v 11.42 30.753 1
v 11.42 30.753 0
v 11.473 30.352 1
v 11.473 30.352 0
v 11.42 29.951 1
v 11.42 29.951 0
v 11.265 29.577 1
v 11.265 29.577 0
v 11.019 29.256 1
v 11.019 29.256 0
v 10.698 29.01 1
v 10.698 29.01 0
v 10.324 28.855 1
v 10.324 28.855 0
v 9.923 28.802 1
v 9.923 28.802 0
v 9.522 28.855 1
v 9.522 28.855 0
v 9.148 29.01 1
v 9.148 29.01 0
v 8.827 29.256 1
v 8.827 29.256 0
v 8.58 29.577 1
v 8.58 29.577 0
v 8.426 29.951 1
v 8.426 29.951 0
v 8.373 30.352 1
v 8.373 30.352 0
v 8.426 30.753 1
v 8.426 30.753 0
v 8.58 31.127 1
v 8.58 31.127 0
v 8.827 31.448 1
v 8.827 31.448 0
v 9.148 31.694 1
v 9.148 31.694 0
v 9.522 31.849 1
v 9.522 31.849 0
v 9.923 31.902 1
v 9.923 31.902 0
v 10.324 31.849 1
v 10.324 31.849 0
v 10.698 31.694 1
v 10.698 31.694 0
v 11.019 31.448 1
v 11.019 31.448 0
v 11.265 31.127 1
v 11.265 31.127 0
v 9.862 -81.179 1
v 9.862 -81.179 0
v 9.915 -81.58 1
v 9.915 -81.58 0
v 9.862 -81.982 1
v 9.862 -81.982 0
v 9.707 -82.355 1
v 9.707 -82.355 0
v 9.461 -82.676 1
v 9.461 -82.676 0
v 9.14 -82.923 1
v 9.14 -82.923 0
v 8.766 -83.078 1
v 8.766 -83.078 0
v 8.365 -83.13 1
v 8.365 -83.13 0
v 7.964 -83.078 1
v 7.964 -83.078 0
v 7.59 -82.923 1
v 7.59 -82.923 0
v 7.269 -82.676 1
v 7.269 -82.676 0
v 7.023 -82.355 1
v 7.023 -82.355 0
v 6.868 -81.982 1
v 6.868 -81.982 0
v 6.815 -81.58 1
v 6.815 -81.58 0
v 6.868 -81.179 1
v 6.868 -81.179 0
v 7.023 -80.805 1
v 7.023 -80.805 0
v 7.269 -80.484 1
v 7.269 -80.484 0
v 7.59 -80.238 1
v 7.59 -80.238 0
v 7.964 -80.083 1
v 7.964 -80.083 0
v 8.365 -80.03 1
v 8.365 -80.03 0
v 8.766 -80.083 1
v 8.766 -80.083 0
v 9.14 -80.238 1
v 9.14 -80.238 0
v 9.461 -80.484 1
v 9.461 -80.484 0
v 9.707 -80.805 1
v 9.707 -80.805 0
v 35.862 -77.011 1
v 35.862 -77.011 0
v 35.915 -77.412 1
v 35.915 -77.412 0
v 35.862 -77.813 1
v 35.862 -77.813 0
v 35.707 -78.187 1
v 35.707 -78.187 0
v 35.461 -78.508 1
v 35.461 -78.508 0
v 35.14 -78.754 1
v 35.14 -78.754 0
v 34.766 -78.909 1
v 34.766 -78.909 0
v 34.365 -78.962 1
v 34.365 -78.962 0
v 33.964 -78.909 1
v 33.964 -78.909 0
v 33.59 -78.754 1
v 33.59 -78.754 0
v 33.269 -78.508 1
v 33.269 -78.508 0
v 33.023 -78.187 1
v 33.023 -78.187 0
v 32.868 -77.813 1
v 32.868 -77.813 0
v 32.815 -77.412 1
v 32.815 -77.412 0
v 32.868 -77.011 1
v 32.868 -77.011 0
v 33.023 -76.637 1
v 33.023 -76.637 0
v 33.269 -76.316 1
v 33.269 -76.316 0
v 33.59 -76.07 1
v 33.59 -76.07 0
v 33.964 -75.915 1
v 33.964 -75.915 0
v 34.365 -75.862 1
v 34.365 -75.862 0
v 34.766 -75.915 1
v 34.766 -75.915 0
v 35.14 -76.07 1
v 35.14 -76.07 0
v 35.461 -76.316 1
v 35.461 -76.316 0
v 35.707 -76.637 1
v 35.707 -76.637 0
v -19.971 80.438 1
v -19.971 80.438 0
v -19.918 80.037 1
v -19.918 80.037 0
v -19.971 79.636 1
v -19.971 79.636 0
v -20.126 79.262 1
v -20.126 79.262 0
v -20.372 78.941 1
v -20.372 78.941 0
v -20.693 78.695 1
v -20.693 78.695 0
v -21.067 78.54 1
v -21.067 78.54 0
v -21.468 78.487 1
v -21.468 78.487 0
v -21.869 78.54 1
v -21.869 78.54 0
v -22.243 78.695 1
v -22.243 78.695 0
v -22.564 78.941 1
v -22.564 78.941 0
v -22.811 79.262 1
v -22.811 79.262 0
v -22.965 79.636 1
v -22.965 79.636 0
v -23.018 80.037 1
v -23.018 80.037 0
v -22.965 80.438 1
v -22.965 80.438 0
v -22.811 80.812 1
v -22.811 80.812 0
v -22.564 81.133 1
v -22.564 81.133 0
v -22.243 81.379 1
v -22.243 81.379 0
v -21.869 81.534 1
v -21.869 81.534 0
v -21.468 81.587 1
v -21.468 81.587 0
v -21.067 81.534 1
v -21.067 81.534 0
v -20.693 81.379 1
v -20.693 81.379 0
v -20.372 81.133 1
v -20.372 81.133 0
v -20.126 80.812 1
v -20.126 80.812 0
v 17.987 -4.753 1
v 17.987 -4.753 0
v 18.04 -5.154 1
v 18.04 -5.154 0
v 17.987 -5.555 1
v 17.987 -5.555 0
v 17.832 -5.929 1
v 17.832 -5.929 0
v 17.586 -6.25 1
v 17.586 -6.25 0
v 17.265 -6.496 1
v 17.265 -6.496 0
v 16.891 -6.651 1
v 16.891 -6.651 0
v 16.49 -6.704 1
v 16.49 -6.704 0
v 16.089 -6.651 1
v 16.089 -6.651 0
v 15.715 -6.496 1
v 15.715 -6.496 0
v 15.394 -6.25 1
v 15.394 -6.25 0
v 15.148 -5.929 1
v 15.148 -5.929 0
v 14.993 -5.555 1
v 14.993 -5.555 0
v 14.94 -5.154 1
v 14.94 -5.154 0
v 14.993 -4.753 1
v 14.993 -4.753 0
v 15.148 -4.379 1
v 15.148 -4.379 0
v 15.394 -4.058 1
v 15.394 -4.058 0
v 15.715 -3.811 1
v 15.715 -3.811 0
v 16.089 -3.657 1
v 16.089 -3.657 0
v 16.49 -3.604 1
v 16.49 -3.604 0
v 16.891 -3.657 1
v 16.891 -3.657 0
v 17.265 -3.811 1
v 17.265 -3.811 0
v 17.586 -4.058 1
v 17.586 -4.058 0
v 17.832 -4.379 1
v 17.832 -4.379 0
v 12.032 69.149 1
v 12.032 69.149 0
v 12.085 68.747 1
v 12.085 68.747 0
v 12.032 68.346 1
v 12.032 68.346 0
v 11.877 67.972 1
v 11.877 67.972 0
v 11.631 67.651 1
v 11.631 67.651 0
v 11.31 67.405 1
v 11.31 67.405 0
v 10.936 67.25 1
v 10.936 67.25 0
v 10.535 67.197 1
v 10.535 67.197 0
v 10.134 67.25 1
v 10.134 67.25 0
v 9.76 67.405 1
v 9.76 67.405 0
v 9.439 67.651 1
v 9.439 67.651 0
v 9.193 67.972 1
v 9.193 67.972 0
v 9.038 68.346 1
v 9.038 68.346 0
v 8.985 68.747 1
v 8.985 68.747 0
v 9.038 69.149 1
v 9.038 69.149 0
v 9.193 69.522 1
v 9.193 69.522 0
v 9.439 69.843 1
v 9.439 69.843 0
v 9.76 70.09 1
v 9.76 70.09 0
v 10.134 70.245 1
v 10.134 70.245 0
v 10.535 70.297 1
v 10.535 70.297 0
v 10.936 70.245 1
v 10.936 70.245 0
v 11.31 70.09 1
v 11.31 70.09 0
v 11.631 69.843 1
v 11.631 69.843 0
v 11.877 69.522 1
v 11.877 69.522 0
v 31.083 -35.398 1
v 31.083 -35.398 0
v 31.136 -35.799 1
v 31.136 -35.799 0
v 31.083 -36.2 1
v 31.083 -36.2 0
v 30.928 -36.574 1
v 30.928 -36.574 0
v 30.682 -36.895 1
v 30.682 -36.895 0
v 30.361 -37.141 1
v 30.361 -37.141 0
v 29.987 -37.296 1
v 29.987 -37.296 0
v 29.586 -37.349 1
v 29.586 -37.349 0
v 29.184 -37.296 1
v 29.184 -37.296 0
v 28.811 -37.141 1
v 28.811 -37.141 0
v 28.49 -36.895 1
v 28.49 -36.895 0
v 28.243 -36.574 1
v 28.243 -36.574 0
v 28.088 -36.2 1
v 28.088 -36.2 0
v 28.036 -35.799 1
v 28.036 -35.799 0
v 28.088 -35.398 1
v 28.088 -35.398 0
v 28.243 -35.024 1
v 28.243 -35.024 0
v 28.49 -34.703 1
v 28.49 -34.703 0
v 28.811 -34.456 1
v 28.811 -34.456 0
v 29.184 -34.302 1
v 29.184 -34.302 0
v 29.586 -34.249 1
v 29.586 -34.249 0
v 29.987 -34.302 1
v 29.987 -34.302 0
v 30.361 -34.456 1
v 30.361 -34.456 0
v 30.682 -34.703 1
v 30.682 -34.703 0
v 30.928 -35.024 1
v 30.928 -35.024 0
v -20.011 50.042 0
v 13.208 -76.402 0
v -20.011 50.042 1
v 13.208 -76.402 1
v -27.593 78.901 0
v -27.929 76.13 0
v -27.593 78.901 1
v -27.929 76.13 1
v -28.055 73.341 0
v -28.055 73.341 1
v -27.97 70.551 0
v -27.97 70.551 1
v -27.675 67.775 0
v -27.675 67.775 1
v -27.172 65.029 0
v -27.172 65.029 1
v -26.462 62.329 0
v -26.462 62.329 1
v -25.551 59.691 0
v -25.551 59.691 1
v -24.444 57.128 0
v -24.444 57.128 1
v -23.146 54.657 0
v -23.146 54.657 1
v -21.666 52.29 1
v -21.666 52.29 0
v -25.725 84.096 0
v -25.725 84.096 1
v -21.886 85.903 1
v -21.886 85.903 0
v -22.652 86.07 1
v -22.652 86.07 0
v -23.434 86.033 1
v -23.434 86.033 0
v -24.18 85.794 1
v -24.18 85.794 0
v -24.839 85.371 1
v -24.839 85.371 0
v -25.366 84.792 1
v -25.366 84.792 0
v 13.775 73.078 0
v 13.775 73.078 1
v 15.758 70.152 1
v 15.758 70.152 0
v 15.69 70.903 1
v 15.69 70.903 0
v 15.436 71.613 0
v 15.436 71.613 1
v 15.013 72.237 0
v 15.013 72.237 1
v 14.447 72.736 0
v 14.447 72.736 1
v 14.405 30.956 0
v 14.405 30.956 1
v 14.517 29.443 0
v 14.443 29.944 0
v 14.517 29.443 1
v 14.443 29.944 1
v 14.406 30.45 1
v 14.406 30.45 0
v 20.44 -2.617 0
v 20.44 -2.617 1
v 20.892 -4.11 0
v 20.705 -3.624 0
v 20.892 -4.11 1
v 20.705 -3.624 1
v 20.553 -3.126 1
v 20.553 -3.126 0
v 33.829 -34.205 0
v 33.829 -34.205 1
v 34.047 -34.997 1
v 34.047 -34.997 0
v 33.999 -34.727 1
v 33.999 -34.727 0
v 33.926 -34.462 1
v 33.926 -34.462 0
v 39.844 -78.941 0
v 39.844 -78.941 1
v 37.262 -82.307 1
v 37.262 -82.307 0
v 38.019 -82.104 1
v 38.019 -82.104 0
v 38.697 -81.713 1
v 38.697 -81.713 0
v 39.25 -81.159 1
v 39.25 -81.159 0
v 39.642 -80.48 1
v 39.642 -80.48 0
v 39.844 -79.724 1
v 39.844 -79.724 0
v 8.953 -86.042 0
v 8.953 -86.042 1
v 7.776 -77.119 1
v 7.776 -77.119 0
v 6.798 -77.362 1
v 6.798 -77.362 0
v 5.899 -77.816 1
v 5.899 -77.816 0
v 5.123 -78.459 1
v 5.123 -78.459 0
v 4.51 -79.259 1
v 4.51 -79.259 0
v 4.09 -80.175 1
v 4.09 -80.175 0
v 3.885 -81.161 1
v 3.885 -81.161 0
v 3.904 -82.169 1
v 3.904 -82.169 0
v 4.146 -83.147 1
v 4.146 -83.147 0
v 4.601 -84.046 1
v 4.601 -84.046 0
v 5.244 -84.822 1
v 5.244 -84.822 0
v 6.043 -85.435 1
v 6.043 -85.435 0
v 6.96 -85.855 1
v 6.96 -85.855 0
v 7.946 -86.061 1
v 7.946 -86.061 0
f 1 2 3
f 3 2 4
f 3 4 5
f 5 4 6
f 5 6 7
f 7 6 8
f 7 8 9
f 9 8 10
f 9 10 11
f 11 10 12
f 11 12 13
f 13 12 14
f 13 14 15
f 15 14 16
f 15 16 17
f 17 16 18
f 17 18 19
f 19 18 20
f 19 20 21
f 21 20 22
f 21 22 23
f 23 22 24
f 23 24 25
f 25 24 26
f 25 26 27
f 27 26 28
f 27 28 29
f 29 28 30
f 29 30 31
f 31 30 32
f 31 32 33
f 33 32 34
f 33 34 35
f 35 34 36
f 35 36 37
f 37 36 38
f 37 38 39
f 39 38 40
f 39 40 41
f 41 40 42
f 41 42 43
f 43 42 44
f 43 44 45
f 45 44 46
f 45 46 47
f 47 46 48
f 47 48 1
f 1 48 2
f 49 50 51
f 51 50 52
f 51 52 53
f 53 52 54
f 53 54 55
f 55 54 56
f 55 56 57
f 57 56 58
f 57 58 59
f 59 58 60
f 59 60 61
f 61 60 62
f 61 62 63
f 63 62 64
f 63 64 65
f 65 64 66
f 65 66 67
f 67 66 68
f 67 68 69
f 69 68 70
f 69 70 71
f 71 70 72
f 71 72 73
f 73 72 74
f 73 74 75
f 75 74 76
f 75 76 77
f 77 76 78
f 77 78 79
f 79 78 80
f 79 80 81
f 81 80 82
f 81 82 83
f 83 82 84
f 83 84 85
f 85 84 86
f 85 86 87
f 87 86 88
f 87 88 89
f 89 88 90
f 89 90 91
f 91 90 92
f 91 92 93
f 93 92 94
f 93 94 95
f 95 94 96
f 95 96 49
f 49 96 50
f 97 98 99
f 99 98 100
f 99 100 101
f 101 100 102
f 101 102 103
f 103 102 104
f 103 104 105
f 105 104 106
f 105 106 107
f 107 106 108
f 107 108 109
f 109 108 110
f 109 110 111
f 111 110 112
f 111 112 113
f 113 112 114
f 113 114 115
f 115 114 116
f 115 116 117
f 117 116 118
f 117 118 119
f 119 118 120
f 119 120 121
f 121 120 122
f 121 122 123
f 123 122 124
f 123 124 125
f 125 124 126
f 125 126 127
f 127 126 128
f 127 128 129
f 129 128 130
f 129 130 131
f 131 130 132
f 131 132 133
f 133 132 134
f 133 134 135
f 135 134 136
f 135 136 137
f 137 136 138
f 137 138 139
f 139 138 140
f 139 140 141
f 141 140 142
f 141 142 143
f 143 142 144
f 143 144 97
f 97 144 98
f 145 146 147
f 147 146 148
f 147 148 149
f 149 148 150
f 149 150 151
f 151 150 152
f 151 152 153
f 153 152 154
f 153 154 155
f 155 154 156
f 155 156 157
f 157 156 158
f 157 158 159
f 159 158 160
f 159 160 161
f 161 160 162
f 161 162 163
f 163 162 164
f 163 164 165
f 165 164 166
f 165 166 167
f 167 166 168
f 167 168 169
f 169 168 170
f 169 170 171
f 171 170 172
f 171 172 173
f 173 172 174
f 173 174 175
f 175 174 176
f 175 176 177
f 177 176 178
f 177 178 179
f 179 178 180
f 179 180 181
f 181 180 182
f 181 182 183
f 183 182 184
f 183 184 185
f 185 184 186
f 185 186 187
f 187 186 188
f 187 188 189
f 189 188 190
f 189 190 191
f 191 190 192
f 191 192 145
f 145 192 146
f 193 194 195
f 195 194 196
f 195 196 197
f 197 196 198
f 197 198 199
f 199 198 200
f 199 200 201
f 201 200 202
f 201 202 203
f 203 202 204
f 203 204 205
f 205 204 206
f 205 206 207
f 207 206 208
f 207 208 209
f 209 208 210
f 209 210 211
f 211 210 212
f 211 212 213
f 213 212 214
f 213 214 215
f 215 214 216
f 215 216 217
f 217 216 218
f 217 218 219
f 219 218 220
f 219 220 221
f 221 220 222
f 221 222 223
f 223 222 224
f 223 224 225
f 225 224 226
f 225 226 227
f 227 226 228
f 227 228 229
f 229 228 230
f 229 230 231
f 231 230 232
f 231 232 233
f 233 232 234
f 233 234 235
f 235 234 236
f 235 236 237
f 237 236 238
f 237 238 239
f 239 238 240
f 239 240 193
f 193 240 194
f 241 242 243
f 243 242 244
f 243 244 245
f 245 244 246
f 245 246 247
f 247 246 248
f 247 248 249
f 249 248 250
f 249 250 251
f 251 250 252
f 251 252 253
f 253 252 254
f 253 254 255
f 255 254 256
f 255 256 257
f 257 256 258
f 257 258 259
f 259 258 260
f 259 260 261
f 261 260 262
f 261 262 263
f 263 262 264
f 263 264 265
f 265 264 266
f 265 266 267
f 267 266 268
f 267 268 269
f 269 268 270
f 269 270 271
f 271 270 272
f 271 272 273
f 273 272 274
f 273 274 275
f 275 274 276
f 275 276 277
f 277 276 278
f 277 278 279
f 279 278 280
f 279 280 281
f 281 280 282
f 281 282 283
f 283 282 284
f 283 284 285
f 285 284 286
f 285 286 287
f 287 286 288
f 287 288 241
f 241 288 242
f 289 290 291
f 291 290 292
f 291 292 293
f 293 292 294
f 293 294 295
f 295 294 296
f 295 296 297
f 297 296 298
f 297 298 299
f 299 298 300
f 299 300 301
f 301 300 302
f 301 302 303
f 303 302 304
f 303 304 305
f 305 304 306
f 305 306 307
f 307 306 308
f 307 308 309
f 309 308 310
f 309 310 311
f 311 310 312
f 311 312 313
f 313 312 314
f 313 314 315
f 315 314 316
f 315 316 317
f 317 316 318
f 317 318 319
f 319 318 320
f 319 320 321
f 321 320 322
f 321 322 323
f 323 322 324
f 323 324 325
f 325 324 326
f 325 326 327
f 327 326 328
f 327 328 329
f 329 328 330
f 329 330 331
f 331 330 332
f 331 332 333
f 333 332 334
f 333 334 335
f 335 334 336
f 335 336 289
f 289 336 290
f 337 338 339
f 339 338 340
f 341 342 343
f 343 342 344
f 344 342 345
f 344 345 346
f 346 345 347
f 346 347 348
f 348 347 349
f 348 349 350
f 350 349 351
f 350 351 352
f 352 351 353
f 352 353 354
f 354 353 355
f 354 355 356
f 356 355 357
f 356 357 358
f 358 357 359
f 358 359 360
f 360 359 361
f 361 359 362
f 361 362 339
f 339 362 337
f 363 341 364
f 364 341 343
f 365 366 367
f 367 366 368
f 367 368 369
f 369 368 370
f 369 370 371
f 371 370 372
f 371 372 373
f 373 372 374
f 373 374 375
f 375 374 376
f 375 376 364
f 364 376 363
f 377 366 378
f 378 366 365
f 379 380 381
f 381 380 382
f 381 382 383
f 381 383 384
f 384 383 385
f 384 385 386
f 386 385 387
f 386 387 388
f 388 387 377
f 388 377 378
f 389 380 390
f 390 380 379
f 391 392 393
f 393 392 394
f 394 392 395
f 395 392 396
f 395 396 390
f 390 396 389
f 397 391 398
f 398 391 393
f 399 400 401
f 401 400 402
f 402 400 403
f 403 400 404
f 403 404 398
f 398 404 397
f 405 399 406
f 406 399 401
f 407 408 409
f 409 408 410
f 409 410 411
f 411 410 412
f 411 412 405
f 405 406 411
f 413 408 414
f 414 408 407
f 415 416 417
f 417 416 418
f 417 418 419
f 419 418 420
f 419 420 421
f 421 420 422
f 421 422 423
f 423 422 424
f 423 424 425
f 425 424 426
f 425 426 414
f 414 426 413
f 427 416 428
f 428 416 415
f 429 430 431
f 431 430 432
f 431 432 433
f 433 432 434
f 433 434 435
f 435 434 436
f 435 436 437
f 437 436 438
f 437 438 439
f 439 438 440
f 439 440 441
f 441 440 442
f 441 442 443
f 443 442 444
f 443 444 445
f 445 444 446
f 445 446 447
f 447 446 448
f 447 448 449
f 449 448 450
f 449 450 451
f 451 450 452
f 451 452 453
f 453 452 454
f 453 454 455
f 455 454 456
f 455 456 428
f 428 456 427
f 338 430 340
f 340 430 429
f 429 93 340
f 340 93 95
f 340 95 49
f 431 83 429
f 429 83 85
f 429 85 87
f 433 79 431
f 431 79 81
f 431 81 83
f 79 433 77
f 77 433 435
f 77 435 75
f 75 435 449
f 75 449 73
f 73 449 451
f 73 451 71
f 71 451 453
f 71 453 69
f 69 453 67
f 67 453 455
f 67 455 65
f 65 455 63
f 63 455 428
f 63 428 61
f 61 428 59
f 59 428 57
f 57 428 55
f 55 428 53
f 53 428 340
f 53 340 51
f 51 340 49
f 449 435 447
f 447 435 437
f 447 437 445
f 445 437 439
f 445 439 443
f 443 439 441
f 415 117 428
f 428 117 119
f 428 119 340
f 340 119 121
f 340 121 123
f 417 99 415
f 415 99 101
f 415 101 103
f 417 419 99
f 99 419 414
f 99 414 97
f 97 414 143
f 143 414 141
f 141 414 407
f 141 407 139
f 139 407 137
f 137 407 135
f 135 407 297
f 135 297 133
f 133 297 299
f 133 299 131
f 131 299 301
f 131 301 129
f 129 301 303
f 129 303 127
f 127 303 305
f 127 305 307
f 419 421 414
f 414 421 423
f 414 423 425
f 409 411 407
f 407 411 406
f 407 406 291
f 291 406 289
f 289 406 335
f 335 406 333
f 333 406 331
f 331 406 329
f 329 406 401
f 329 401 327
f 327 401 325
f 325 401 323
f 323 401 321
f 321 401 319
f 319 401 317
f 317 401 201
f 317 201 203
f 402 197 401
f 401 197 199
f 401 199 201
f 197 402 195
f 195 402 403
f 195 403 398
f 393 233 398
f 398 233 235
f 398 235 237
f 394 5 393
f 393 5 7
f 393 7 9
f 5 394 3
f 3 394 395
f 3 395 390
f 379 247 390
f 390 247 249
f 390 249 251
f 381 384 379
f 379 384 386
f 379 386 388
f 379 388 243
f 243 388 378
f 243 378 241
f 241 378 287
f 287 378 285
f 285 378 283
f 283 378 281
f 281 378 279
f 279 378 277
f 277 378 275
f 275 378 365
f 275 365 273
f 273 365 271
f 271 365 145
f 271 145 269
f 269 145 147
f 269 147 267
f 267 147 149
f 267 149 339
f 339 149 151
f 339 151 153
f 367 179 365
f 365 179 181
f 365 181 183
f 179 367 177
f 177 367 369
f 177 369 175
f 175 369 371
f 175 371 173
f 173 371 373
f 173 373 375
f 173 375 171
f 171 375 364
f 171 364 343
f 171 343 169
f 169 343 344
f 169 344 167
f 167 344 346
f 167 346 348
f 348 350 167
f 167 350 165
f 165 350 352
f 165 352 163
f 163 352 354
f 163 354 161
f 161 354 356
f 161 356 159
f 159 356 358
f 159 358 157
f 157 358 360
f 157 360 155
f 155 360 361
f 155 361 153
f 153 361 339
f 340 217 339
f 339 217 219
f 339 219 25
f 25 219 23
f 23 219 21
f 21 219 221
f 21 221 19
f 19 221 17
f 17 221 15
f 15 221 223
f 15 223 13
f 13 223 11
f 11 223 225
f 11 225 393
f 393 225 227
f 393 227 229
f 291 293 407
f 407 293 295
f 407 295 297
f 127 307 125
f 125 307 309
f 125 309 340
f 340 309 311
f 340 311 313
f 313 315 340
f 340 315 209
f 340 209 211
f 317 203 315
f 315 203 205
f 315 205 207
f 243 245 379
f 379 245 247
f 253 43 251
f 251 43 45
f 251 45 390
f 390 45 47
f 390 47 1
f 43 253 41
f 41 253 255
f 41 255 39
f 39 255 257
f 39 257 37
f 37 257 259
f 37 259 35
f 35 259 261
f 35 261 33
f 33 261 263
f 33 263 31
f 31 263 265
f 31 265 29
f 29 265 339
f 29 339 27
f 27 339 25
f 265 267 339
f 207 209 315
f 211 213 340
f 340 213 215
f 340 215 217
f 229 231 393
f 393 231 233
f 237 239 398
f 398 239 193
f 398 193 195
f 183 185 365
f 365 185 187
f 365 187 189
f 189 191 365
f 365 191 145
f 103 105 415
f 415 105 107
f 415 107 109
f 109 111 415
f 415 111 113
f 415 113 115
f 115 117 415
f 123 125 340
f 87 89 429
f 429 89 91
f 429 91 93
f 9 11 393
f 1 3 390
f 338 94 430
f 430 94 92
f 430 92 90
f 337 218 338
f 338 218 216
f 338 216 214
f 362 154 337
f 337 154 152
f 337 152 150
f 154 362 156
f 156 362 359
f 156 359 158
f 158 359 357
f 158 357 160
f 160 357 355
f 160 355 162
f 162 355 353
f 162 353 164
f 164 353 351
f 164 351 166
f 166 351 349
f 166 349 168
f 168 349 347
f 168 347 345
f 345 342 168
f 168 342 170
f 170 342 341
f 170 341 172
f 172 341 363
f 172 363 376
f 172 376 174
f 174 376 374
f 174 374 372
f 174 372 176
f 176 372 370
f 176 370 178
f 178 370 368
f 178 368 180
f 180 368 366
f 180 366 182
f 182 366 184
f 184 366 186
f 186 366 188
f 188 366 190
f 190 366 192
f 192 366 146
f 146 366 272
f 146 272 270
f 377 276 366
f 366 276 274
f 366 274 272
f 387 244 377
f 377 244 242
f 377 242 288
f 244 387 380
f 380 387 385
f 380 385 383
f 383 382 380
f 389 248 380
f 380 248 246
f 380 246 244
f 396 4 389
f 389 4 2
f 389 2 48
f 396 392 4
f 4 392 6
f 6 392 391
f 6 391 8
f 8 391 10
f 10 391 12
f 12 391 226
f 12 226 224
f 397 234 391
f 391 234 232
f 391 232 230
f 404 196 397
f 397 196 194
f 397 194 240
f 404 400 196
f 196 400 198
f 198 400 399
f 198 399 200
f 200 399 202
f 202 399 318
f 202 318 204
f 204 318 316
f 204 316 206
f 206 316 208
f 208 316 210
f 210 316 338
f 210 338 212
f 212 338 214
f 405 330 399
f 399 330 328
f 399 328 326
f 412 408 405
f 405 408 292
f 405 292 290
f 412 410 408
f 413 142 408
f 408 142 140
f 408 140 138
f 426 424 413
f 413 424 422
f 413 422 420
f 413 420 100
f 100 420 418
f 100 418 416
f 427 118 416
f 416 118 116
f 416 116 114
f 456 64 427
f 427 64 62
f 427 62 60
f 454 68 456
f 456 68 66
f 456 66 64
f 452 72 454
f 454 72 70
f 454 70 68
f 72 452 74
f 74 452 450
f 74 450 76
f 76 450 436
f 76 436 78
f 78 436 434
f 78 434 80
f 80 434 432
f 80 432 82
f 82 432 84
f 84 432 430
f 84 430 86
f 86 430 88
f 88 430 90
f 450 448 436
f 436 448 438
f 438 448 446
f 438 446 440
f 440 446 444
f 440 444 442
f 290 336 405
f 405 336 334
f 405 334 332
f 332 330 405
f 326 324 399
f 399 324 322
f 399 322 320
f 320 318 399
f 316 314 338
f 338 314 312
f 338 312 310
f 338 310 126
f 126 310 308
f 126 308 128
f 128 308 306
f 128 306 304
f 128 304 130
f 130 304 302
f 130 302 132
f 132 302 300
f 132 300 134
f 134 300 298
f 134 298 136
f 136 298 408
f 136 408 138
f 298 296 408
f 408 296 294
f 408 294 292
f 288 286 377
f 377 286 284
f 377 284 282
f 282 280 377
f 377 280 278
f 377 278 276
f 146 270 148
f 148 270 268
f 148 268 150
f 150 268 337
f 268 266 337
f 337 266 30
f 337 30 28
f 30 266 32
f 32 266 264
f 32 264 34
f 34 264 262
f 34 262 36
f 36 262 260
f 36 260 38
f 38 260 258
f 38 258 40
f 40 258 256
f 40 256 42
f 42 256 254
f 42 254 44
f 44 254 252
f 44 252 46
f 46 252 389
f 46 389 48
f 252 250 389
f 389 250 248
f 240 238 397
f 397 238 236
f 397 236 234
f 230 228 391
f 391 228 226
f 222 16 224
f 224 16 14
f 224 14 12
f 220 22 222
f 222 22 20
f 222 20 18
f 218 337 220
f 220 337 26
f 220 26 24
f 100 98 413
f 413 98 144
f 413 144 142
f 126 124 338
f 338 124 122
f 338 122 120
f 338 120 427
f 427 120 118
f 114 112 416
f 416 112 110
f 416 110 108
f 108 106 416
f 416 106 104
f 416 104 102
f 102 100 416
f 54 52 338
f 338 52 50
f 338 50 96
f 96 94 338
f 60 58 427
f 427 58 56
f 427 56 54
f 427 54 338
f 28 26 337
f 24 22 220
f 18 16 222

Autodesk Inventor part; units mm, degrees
ref_plane "YZ Plane" through (0, 0, 0) normal (1, 0, 0) x (0, 1, 0)
ref_plane "XZ Plane" through (0, 0, 0) normal (0, 1, 0) x (-1, 0, 0)
ref_plane "XY Plane" through (0, 0, 0) normal (0, 0, 1) x (1, 0, 0)
ref_plane "Work Plane1" through (0, 0, 0) normal (0, 0, 1) x (1, 0, 0)
sketch "Sketch1" plane through (0, 0, 0) normal (0, 0, 1) x (1, 0, 0)
  line L0 (12.6235, -7.6637) -> (25.0692, -36.6156) projected
  arc A0 (25.2873, -37.408) -> (25.0692, -36.6156) centre (22.3131, -37.8003) ccw projected
  line L1 (25.2873, -37.408) -> (29.8752, -72.1865) projected
  arc A1 (28.1539, -74.4309) -> (29.8752, -72.1865) centre (27.8924, -72.448) ccw projected
  line L2 (28.1539, -74.4309) -> (7.7764, -77.119) projected
  arc A2 (7.7764, -77.119) -> (8.9535, -86.0417) centre (8.365, -81.5803) ccw projected
  line L3 (8.9535, -86.0417) -> (37.2623, -82.3073) projected
  arc A3 (37.2623, -82.3073) -> (39.8442, -78.9407) centre (36.8699, -79.3331) ccw projected
  line L4 (39.8442, -78.9407) -> (34.0473, -34.997) projected
  arc A4 (34.0473, -34.997) -> (33.8292, -34.2046) centre (31.073, -35.3894) ccw projected
  line L5 (33.8292, -34.2046) -> (20.8924, -4.1103) projected
  arc A5 (20.4398, -2.6174) -> (20.8924, -4.1103) centre (27.3234, -1.3458) ccw projected
  line L6 (20.4398, -2.6174) -> (14.5173, 29.4432) projected
  arc A6 (14.405, 30.9564) -> (14.5173, 29.4432) centre (21.4008, 30.7148) ccw projected
  line L7 (14.405, 30.9564) -> (15.7585, 70.1518) projected
  arc A7 (15.7585, 70.1518) -> (13.7755, 73.0784) centre (12.7603, 70.2554) ccw projected
  line L8 (13.7755, 73.0784) -> (-21.8863, 85.9033) projected
  arc A8 (-21.8863, 85.9033) -> (-25.7246, 84.0956) centre (-22.9016, 83.0803) ccw projected
  line L9 (-25.7246, 84.0956) -> (-39.6044, 45.5005) projected
  arc A9 (-39.6044, 45.5005) -> (-31.1354, 42.4548) centre (-35.3699, 43.9777) ccw projected
  line L10 (-31.1354, 42.4548) -> (-28.9682, 48.481) projected
  arc A10 (-23.2109, 51.1927) -> (-28.9682, 48.481) centre (-24.7337, 46.9582) ccw projected
  line L11 (-23.2109, 51.1927) -> (2.9943, 41.7686) projected
  arc A11 (5.6382, 37.8666) -> (2.9943, 41.7686) centre (1.6406, 38.0046) ccw projected
  line L12 (5.6382, 37.8666) -> (5.4104, 31.2681) projected
  arc A12 (5.4104, 31.2681) -> (5.5231, 29.7528) centre (12.4062, 31.0266) ccw projected
  line L13 (5.5231, 29.7528) -> (12.1714, -6.1729) projected
  arc A13 (12.1714, -6.1729) -> (12.6235, -7.6637) centre (19.0545, -4.8992) ccw projected
  circle A14 centre (29.5855, -35.7988) radius 1.55 projected
  circle A15 centre (10.5349, 68.7475) radius 1.55 projected
  circle A16 centre (16.4901, -5.1537) radius 1.55 projected
  circle A17 centre (-21.4682, 80.037) radius 1.55 projected
  circle A18 centre (-35.3699, 43.9777) radius 1.55 projected
  circle A19 centre (34.3649, -77.4119) radius 1.55 projected
  circle A20 centre (-28.5644, 59.2229) radius 1.55 projected
  circle A21 centre (8.365, -81.5803) radius 1.55 projected
  circle A22 centre (9.9227, 30.3521) radius 1.55 projected
  line L14 (0.9032, 52.0849) -> (-20.6357, 59.8309) projected
  arc A23 (-23.0461, 64.9485) -> (-20.6357, 59.8309) centre (-19.2821, 63.5949) ccw projected
  line L15 (-23.0461, 64.9485) -> (-20.3013, 72.5809) projected
  arc A24 (-16.463, 74.3887) -> (-20.3013, 72.5809) centre (-17.4783, 71.5657) ccw projected
  line L16 (-16.463, 74.3887) -> (3.8682, 67.077) projected
  arc A25 (6.5122, 63.1749) -> (3.8682, 67.077) centre (2.5146, 63.313) ccw projected
  line L17 (6.5122, 63.1749) -> (6.2544, 55.7109) projected
  arc A26 (0.9032, 52.0849) -> (6.2544, 55.7109) centre (2.2568, 55.8489) ccw projected
  line L18 (-14.3316, 28.4241) -> (-19.7537, 49.0626) construction
  line L19 (1.5801, -32.1414) -> (-3.5777, -12.5091) construction
  line L20 (-6.8942, 0.1146) -> (-11.0151, 15.8005) construction
  line L21 (-25.7315, 60.0097) -> (-31.5346, 58.4851) construction
  line L22 (-19.8838, 37.7512) -> (-25.7315, 60.0097) construction
  line L23 (-25.6869, 36.2266) -> (-19.8838, 37.7512) construction
  line L24 (-25.6869, 36.2266) -> (-31.5346, 58.4851) construction
  line L25 (1.5128, -67.305) -> (7.3158, -65.7804) construction
  line L26 (10.8632, -102.8959) -> (1.5128, -67.305) construction
  line L27 (16.6662, -101.3713) -> (10.8632, -102.8959) construction
  line L28 (7.3158, -65.7804) -> (16.6662, -101.3713) construction
  line L29 (-20.011, 50.0419) -> (13.2082, -76.4024)
  arc A27 (-27.5927, 78.9008) -> (-20.011, 50.0419) centre (8.9141, 73.0664) ccw
  point P0 (0, 0)
extrude "Extrusion1" add sketch "Sketch1" along normal blind 1 contours A13 L13 A12 L12 A11 L11 A27 L9 A8 L8 A7 L7 A6 L6 A5 L5 A4 L4 A3 L3 A2 L2 A1 L1 A0 L0 | L0 A0 L1 A1 L2 L29 L11 A11 L12 A12 L13 A13 | L14 A23 L15 A24 L16 A25 L17 A26
properties part number "side skert v2" material "Brass, Soft Yellow"
